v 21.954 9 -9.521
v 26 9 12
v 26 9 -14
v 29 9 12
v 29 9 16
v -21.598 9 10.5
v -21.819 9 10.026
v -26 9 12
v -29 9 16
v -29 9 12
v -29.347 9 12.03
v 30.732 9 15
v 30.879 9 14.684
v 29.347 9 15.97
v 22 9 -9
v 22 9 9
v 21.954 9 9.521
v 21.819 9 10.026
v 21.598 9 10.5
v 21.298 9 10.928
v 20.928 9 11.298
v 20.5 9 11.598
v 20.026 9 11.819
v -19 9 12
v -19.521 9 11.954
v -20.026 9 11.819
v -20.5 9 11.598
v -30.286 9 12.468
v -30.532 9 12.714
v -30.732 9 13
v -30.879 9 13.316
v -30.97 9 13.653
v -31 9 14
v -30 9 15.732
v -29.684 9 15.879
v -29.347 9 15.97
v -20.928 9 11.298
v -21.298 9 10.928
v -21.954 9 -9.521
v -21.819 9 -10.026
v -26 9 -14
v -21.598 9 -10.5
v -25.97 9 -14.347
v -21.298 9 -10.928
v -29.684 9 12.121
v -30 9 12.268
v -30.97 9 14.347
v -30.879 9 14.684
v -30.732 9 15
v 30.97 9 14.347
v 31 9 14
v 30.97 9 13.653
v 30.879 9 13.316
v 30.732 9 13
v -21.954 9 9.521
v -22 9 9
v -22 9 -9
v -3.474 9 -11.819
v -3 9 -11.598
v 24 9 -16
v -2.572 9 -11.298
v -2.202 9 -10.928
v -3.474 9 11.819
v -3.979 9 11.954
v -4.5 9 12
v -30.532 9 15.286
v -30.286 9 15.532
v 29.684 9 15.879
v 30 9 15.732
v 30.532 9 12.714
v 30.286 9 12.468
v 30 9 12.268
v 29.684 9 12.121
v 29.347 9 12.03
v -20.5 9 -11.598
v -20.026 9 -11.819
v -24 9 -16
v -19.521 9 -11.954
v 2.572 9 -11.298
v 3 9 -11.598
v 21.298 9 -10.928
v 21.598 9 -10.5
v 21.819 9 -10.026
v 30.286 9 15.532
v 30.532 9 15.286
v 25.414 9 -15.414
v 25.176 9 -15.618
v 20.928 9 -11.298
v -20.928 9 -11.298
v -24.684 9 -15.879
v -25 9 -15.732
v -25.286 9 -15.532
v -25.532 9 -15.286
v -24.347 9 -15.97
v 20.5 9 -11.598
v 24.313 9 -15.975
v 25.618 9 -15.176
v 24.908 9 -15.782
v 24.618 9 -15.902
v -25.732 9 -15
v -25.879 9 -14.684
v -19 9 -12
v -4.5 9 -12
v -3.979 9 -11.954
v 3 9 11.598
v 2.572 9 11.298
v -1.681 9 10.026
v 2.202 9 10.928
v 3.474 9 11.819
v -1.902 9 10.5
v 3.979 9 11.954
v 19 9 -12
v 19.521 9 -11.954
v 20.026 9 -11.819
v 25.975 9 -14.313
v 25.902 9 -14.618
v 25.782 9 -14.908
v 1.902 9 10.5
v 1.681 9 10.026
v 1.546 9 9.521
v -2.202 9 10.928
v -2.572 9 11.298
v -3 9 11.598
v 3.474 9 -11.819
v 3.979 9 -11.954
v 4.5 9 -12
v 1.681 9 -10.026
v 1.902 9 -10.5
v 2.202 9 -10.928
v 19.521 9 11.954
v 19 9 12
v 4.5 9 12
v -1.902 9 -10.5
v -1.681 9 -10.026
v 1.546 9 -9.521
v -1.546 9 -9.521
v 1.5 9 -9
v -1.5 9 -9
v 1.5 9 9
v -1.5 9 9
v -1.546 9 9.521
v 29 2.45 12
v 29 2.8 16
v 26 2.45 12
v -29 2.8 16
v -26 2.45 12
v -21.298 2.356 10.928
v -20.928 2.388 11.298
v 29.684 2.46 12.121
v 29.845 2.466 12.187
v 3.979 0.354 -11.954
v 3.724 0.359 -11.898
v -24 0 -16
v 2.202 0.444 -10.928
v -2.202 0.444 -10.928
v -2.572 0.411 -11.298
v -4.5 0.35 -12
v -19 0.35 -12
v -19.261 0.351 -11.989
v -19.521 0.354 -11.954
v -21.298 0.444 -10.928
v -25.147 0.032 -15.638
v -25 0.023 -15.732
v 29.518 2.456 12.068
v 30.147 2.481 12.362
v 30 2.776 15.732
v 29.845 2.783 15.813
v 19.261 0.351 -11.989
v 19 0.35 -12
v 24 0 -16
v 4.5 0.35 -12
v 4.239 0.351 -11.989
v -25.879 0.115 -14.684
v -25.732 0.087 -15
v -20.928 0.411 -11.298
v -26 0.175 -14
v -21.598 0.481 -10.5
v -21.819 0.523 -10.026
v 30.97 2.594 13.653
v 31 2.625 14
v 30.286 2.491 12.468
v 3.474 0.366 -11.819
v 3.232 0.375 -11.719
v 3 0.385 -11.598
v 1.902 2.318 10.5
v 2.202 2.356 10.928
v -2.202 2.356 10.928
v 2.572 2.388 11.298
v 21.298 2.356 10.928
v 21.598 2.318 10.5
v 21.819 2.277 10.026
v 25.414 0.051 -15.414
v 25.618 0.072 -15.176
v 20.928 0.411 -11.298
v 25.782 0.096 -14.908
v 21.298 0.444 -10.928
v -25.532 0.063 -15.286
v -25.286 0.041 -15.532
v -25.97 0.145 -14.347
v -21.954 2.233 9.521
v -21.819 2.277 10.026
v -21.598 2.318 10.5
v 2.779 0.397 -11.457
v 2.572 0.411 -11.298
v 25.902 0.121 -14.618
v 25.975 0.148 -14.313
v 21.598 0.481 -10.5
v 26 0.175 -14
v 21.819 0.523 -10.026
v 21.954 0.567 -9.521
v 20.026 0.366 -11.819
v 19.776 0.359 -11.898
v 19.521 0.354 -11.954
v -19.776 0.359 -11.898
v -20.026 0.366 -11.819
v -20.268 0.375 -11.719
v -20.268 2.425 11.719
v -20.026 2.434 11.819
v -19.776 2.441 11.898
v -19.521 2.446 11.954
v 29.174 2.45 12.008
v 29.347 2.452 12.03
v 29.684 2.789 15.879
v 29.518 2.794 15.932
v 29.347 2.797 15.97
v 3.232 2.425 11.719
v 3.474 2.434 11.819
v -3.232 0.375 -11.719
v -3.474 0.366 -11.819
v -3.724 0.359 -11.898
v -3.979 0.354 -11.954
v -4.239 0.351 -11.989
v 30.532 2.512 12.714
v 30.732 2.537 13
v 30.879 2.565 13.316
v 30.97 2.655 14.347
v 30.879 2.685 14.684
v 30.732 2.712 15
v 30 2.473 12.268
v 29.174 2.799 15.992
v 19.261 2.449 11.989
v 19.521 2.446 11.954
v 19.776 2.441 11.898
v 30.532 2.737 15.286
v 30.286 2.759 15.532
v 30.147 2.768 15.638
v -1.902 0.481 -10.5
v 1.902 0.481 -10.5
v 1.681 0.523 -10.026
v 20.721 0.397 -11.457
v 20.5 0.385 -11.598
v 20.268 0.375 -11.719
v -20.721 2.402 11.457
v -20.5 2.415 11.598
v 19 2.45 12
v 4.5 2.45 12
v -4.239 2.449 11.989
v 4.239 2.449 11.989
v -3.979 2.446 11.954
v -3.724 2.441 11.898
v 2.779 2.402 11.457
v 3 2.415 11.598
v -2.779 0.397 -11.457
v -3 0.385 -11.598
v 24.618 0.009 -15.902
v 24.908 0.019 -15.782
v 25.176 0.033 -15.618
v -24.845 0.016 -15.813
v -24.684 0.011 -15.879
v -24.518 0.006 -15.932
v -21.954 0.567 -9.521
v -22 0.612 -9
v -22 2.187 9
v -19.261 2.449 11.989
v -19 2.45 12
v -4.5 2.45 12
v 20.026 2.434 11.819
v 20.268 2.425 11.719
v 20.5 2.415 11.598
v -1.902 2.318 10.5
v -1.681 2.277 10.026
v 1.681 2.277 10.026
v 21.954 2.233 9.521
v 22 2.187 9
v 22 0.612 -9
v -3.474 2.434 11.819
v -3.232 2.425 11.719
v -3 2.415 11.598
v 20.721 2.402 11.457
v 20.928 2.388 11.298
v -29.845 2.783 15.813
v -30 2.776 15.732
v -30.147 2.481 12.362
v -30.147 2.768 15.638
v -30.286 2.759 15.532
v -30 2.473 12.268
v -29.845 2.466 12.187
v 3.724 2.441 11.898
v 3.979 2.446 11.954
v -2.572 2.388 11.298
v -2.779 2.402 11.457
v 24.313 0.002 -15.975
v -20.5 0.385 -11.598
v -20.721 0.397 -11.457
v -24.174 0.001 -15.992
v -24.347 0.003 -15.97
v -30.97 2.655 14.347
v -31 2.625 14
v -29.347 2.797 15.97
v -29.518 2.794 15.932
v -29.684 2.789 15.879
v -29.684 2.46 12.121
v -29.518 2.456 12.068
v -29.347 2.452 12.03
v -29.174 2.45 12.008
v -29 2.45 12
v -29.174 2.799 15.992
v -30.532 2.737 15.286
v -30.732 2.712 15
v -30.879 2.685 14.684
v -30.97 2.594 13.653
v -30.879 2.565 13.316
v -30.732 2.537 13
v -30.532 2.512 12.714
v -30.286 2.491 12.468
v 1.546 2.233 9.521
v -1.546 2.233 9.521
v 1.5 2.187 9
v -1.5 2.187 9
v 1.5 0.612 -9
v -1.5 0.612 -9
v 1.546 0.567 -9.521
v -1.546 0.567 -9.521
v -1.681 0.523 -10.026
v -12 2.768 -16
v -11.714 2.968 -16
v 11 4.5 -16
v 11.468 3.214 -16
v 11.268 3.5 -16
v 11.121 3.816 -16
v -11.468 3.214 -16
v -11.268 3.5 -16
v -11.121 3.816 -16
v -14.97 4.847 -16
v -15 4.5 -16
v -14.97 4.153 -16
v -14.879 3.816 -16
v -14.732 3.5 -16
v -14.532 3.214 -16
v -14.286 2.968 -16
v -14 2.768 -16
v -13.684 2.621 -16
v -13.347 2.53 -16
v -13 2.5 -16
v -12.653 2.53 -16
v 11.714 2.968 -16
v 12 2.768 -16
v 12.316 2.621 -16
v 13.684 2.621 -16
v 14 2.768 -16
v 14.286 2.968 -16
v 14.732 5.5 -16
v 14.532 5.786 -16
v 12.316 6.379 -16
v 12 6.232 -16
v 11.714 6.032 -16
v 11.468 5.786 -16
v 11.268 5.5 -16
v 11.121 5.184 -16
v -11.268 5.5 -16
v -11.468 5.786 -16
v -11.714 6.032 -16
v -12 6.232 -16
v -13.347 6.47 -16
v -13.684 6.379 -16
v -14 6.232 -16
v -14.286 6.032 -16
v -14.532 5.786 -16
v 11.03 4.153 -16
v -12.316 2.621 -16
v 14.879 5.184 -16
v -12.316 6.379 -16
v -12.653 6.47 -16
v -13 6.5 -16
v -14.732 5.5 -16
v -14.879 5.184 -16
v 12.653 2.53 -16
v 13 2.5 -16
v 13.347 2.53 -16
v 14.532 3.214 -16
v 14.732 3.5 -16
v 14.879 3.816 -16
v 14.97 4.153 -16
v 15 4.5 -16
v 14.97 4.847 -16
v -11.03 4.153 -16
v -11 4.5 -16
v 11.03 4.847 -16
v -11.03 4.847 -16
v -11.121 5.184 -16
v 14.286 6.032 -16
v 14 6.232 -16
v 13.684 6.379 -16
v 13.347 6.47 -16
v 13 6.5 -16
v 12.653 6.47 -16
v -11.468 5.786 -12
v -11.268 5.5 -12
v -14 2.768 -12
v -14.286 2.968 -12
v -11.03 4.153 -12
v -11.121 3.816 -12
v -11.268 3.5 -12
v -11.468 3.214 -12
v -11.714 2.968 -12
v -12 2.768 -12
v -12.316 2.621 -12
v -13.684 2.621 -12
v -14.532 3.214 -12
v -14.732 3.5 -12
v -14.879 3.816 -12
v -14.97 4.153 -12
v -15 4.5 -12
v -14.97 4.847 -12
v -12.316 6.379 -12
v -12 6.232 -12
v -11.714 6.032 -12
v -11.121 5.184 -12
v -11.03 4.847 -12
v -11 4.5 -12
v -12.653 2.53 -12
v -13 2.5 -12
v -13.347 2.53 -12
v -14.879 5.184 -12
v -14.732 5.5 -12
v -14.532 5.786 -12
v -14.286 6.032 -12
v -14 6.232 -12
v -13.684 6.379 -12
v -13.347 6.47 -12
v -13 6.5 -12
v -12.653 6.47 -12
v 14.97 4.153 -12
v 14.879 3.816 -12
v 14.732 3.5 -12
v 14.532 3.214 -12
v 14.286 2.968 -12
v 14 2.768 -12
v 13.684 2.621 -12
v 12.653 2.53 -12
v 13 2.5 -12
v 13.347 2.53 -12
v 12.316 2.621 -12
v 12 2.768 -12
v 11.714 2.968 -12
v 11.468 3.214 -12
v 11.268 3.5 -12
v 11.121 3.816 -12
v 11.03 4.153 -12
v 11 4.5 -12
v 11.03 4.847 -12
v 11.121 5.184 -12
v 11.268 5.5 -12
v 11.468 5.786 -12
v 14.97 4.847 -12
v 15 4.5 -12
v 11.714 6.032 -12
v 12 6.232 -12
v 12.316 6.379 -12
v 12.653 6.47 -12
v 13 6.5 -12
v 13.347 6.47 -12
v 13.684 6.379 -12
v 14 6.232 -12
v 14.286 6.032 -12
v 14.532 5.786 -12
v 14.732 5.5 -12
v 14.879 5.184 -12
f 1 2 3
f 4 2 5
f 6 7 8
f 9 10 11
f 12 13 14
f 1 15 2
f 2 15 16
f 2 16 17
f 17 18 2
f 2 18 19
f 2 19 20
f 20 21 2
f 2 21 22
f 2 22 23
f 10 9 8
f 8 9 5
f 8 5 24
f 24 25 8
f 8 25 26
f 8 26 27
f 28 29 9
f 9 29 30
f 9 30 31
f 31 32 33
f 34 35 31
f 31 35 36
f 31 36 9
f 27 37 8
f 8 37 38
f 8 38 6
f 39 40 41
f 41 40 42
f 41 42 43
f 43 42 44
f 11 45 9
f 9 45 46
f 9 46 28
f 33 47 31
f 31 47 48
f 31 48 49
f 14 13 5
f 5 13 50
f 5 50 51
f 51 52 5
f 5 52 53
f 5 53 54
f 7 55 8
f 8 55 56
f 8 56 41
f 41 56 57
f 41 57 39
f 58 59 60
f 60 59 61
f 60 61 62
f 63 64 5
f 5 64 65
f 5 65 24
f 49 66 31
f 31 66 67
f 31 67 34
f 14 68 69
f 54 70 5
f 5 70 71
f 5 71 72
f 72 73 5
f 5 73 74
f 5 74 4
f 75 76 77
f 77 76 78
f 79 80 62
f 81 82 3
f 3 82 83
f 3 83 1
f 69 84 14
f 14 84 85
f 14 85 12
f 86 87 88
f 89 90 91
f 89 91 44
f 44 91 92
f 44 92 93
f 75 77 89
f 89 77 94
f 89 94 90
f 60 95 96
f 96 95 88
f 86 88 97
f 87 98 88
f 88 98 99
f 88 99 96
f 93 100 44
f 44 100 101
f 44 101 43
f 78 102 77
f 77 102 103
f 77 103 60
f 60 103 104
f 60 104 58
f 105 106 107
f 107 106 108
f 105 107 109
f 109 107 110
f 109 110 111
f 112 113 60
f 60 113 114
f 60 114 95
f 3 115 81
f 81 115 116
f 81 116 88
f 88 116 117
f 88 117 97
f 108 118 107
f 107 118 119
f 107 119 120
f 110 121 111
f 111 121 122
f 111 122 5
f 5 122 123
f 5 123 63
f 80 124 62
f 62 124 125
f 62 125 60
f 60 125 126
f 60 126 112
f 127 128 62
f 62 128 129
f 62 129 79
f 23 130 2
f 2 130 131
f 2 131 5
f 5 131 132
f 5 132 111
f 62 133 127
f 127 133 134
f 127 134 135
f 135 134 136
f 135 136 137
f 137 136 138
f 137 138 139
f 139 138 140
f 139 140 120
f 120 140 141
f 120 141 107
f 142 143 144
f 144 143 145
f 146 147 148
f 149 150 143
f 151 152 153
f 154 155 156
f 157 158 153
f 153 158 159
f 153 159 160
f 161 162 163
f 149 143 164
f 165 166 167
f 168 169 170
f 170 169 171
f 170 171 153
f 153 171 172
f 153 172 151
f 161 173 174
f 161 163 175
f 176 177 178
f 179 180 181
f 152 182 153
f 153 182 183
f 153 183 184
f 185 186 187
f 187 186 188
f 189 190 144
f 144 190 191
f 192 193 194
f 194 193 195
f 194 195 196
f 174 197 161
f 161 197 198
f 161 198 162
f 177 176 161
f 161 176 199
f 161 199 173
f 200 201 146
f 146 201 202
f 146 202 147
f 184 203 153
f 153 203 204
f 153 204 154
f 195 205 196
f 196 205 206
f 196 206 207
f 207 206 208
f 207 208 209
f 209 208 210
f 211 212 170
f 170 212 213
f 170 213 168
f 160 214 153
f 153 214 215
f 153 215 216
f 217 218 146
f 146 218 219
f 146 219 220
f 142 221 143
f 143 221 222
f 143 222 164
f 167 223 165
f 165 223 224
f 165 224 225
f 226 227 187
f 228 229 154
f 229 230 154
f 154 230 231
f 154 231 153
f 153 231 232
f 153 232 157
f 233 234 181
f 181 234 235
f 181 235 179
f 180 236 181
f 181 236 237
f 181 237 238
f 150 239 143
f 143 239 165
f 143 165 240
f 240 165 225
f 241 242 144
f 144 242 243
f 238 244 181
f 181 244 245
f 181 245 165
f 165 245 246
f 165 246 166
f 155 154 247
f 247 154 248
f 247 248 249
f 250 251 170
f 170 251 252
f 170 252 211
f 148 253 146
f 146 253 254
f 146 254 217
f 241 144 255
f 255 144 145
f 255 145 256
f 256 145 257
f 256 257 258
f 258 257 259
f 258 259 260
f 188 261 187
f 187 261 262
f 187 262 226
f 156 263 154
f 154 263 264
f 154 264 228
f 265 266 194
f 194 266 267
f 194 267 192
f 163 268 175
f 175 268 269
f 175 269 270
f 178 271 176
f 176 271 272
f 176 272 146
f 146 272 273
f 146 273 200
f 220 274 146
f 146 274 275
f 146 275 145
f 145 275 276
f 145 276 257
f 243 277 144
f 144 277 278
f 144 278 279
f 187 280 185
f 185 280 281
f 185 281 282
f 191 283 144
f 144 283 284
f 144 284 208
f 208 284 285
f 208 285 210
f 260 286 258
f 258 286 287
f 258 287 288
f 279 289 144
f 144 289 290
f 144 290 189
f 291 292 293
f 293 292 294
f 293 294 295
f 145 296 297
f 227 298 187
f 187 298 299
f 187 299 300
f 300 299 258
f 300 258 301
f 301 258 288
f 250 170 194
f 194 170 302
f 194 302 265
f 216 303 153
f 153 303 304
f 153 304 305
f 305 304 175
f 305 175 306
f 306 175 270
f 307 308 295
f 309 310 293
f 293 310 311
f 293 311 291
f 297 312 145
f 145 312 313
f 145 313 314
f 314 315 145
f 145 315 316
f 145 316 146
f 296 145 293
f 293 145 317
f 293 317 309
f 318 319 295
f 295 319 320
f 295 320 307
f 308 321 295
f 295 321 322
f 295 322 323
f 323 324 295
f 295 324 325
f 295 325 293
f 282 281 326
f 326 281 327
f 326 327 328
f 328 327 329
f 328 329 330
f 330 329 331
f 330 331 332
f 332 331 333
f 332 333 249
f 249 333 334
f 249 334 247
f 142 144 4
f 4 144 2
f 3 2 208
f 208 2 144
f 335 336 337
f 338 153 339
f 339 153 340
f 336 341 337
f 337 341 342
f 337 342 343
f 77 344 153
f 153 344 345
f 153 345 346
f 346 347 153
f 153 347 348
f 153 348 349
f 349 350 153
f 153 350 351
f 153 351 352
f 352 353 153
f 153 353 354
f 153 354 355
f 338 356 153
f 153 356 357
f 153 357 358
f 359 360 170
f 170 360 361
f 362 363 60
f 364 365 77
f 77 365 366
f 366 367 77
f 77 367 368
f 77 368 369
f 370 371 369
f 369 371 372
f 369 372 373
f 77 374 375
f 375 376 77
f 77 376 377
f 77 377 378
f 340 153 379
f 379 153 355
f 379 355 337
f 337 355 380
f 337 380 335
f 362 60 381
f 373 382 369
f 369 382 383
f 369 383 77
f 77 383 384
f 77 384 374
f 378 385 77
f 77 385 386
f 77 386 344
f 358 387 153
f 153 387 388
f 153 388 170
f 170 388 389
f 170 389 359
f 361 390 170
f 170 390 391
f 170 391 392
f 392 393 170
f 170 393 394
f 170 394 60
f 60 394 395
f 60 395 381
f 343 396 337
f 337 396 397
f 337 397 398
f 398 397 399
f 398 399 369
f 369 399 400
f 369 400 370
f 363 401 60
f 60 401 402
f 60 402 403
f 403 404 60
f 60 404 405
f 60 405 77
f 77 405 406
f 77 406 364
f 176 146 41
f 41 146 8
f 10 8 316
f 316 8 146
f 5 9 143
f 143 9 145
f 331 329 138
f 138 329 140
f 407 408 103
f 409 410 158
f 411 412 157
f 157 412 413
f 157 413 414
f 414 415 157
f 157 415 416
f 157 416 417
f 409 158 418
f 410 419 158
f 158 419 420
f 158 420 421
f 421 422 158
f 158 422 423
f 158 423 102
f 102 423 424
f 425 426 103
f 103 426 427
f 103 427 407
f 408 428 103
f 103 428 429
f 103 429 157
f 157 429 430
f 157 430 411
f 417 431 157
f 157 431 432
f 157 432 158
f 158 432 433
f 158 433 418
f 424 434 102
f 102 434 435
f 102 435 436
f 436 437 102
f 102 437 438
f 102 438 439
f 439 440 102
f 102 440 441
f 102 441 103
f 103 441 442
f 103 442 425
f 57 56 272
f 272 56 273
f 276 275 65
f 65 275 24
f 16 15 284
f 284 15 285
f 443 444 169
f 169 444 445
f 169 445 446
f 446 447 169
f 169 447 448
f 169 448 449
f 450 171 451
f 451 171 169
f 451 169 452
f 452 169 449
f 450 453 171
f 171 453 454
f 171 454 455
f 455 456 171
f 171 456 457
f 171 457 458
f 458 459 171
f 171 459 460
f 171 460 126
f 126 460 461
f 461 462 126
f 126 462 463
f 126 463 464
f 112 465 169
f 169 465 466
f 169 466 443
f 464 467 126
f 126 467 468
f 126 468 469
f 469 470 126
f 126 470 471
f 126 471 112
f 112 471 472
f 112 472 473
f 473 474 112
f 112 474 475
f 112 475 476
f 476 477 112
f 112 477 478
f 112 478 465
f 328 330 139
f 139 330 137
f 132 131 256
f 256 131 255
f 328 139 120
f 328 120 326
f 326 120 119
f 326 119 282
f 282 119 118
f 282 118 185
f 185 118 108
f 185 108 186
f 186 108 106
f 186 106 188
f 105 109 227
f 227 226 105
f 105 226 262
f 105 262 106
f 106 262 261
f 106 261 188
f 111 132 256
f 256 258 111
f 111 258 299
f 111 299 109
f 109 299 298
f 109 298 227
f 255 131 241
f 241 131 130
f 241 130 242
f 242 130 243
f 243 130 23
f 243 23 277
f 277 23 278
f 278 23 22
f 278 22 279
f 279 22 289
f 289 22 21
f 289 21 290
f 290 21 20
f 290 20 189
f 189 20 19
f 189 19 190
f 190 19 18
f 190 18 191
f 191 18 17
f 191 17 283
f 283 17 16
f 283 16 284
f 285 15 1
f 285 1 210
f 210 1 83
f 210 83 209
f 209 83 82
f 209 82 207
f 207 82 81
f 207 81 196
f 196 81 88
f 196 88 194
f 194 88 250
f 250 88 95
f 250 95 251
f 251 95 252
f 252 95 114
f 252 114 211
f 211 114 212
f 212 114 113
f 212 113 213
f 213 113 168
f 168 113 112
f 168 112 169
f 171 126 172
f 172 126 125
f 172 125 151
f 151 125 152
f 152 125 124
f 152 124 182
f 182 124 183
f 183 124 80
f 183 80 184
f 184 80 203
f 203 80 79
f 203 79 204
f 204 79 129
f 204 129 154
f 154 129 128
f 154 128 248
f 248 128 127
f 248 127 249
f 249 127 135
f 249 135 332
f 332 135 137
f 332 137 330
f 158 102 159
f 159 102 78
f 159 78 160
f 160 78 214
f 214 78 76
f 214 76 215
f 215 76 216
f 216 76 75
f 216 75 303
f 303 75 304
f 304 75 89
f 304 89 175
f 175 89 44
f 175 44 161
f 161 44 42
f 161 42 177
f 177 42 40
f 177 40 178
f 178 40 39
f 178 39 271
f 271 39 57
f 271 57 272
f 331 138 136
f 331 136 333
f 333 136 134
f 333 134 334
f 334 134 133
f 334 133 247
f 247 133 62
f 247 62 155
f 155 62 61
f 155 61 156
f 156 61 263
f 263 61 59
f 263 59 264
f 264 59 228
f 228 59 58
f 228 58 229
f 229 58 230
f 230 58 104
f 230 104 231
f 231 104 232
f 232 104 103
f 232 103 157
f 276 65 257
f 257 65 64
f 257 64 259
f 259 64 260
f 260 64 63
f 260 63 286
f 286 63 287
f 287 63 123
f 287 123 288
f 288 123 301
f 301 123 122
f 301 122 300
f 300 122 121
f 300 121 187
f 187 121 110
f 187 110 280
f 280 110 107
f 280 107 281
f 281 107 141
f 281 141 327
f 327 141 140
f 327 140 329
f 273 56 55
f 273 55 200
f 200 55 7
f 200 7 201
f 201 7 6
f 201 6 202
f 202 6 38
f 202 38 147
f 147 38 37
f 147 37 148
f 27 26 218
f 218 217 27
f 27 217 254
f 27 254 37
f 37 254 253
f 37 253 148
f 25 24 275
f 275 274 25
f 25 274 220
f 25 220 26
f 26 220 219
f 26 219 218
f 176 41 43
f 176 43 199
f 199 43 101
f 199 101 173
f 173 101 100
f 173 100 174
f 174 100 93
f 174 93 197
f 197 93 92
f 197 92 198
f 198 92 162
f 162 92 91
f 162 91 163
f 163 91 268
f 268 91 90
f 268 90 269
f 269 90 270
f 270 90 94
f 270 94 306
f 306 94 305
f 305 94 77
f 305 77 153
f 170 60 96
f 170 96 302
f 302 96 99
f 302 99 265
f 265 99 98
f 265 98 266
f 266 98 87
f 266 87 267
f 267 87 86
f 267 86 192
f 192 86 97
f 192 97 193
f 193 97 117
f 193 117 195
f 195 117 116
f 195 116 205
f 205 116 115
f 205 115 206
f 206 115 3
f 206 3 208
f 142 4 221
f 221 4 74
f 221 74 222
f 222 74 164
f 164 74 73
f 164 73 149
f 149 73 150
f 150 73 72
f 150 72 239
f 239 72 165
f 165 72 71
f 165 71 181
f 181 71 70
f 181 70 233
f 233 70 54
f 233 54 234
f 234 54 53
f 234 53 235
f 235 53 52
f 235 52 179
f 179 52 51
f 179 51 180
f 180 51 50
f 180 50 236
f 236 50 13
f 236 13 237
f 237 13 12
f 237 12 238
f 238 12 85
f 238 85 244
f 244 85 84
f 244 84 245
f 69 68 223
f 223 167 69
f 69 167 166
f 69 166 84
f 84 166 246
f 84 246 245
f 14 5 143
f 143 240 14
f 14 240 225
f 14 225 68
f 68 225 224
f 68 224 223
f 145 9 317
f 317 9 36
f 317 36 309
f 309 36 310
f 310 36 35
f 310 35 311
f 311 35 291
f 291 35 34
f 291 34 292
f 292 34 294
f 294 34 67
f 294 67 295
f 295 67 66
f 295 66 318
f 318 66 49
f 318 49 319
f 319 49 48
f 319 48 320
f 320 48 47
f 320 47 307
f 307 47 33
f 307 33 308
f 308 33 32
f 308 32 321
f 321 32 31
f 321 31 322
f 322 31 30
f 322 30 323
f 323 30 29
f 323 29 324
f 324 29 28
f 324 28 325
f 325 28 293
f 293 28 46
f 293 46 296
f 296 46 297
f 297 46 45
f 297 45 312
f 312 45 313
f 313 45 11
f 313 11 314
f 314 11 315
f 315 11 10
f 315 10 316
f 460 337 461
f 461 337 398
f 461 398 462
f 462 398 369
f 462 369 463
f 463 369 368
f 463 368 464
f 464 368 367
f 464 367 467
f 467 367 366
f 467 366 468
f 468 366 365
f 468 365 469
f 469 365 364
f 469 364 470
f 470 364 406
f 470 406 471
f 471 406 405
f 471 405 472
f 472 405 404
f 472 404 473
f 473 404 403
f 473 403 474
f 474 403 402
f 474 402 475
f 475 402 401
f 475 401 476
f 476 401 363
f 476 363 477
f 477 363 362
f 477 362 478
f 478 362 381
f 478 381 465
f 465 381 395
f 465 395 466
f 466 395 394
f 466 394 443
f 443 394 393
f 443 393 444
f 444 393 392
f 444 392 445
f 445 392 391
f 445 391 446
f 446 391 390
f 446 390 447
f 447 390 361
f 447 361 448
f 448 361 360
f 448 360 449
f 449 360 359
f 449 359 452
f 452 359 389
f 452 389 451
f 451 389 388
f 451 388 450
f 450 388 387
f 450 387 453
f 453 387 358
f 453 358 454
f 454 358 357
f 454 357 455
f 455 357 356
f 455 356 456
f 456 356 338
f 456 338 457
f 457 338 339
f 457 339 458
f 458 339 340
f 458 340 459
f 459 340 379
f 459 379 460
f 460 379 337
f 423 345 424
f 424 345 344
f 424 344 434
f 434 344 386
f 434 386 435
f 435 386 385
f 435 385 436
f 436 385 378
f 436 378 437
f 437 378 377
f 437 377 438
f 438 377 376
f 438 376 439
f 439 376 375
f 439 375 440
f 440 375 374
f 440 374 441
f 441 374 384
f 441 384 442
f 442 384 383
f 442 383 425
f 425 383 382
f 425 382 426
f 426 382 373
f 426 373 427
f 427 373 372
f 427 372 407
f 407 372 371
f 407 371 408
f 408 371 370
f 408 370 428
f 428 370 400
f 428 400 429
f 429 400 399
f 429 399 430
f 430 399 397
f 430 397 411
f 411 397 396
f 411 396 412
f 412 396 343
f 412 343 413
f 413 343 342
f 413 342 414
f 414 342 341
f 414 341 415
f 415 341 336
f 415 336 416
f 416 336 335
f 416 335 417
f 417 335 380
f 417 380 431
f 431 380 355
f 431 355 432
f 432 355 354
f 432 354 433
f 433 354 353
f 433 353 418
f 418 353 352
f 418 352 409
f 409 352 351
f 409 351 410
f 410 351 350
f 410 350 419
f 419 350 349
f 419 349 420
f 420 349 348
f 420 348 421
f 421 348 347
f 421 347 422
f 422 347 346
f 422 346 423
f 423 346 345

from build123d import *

# Parameters (mm, degrees)
SKETCH1_W           = 20.5
SKETCH1_H           = 24
BOSS_EXTRUDE1_DEPTH = 9
FILLET1_R           = 3
FILLET2_R           = 2
CUT_EXTRUDE1_REACH  = 47.453
SKETCH2_R           = 2
DRAFT1_START        = -1.394491884
DRAFT1_OUTLINE_W    = 64
DRAFT1_OUTLINE_H    = 35
DRAFT1_DEPTH        = 2.788983768


# Read off the part's stored shape, not the designer's step: Draft1
with BuildPart() as part:
    # Sketch1 → Boss-Extrude1 (new body)
    with BuildSketch(Plane(origin=(0, 0, 0), x_dir=(1, 0, 0), z_dir=(0, 1, 0))):
        Polygon((-26, 16), (26, 16), (26, -12), (31, -12), (31, -16), (26, -16), (-26, -16), (-31, -16), (-31, -12), (-26, -12), align=None)
        with Locations((-11.75, 0)):
            Rectangle(SKETCH1_W, SKETCH1_H, mode=Mode.SUBTRACT)
        with Locations((11.75, 0)):
            Rectangle(SKETCH1_W, SKETCH1_H, mode=Mode.SUBTRACT)
    extrude(amount=BOSS_EXTRUDE1_DEPTH)

    # Fillet1
    fillet1_edges = [part.edges().sort_by_distance(p)[0] for p in [
        (-1.5, 4.5, 12),
        (-1.5, 4.5, -12),
        (-22, 4.5, -12),
        (-22, 4.5, 12),
        (22, 4.5, 12),
        (22, 4.5, -12),
        (1.5, 4.5, -12),
        (1.5, 4.5, 12),
    ]]
    fillet(fillet1_edges, radius=FILLET1_R)

    # Fillet2
    fillet2_edges = [part.edges().sort_by_distance(p)[0] for p in [
        (-26, 4.5, -16),
        (26, 4.5, -16),
        (31, 4.5, 16),
        (31, 4.5, 12),
        (-31, 4.5, 12),
        (-31, 4.5, 16),
    ]]
    fillet(fillet2_edges, radius=FILLET2_R - 0.0001)  # a hair under: the kernel refuses the full size

    # Sketch2 → Cut-Extrude1 (cut, up to next)
    with BuildSketch(Plane(origin=(0, 0, -16), x_dir=(-1, 0, 0), z_dir=(0, 0, -1)), mode=Mode.PRIVATE) as cut_extrude1_sk1:
        with Locations((-13, 4.5)):
            Circle(SKETCH2_R)
    cut_extrude1_tool1 = extrude(cut_extrude1_sk1.sketch, amount=-CUT_EXTRUDE1_REACH, mode=Mode.PRIVATE) & part.part
    # Sketch2 → Cut-Extrude1 (cut, up to next)
    with BuildSketch(Plane(origin=(0, 0, -16), x_dir=(-1, 0, 0), z_dir=(0, 0, -1)), mode=Mode.PRIVATE) as cut_extrude1_sk2:
        with Locations(Location((13, 4.5, 0), (0, 0, 180))):
            Circle(SKETCH2_R)
    cut_extrude1_tool2 = extrude(cut_extrude1_sk2.sketch, amount=-CUT_EXTRUDE1_REACH, mode=Mode.PRIVATE) & part.part
    add(cut_extrude1_tool1.solids().sort_by_distance((13, 4.5, -16))[0], mode=Mode.SUBTRACT)
    add(cut_extrude1_tool2.solids().sort_by_distance((-13, 4.5, -16))[0], mode=Mode.SUBTRACT)

    # Draft1 outline → Draft1 (cut)
    with BuildSketch(Plane(origin=(0, 0, 0), x_dir=(1, 0, 0), z_dir=(0, 0.9961946980917455, -0.08715574274765824)).offset(DRAFT1_START)):
        with Locations((0, -0.5)):
            Rectangle(DRAFT1_OUTLINE_W, DRAFT1_OUTLINE_H)
    extrude(amount=DRAFT1_DEPTH, mode=Mode.SUBTRACT)


solid = part.part
